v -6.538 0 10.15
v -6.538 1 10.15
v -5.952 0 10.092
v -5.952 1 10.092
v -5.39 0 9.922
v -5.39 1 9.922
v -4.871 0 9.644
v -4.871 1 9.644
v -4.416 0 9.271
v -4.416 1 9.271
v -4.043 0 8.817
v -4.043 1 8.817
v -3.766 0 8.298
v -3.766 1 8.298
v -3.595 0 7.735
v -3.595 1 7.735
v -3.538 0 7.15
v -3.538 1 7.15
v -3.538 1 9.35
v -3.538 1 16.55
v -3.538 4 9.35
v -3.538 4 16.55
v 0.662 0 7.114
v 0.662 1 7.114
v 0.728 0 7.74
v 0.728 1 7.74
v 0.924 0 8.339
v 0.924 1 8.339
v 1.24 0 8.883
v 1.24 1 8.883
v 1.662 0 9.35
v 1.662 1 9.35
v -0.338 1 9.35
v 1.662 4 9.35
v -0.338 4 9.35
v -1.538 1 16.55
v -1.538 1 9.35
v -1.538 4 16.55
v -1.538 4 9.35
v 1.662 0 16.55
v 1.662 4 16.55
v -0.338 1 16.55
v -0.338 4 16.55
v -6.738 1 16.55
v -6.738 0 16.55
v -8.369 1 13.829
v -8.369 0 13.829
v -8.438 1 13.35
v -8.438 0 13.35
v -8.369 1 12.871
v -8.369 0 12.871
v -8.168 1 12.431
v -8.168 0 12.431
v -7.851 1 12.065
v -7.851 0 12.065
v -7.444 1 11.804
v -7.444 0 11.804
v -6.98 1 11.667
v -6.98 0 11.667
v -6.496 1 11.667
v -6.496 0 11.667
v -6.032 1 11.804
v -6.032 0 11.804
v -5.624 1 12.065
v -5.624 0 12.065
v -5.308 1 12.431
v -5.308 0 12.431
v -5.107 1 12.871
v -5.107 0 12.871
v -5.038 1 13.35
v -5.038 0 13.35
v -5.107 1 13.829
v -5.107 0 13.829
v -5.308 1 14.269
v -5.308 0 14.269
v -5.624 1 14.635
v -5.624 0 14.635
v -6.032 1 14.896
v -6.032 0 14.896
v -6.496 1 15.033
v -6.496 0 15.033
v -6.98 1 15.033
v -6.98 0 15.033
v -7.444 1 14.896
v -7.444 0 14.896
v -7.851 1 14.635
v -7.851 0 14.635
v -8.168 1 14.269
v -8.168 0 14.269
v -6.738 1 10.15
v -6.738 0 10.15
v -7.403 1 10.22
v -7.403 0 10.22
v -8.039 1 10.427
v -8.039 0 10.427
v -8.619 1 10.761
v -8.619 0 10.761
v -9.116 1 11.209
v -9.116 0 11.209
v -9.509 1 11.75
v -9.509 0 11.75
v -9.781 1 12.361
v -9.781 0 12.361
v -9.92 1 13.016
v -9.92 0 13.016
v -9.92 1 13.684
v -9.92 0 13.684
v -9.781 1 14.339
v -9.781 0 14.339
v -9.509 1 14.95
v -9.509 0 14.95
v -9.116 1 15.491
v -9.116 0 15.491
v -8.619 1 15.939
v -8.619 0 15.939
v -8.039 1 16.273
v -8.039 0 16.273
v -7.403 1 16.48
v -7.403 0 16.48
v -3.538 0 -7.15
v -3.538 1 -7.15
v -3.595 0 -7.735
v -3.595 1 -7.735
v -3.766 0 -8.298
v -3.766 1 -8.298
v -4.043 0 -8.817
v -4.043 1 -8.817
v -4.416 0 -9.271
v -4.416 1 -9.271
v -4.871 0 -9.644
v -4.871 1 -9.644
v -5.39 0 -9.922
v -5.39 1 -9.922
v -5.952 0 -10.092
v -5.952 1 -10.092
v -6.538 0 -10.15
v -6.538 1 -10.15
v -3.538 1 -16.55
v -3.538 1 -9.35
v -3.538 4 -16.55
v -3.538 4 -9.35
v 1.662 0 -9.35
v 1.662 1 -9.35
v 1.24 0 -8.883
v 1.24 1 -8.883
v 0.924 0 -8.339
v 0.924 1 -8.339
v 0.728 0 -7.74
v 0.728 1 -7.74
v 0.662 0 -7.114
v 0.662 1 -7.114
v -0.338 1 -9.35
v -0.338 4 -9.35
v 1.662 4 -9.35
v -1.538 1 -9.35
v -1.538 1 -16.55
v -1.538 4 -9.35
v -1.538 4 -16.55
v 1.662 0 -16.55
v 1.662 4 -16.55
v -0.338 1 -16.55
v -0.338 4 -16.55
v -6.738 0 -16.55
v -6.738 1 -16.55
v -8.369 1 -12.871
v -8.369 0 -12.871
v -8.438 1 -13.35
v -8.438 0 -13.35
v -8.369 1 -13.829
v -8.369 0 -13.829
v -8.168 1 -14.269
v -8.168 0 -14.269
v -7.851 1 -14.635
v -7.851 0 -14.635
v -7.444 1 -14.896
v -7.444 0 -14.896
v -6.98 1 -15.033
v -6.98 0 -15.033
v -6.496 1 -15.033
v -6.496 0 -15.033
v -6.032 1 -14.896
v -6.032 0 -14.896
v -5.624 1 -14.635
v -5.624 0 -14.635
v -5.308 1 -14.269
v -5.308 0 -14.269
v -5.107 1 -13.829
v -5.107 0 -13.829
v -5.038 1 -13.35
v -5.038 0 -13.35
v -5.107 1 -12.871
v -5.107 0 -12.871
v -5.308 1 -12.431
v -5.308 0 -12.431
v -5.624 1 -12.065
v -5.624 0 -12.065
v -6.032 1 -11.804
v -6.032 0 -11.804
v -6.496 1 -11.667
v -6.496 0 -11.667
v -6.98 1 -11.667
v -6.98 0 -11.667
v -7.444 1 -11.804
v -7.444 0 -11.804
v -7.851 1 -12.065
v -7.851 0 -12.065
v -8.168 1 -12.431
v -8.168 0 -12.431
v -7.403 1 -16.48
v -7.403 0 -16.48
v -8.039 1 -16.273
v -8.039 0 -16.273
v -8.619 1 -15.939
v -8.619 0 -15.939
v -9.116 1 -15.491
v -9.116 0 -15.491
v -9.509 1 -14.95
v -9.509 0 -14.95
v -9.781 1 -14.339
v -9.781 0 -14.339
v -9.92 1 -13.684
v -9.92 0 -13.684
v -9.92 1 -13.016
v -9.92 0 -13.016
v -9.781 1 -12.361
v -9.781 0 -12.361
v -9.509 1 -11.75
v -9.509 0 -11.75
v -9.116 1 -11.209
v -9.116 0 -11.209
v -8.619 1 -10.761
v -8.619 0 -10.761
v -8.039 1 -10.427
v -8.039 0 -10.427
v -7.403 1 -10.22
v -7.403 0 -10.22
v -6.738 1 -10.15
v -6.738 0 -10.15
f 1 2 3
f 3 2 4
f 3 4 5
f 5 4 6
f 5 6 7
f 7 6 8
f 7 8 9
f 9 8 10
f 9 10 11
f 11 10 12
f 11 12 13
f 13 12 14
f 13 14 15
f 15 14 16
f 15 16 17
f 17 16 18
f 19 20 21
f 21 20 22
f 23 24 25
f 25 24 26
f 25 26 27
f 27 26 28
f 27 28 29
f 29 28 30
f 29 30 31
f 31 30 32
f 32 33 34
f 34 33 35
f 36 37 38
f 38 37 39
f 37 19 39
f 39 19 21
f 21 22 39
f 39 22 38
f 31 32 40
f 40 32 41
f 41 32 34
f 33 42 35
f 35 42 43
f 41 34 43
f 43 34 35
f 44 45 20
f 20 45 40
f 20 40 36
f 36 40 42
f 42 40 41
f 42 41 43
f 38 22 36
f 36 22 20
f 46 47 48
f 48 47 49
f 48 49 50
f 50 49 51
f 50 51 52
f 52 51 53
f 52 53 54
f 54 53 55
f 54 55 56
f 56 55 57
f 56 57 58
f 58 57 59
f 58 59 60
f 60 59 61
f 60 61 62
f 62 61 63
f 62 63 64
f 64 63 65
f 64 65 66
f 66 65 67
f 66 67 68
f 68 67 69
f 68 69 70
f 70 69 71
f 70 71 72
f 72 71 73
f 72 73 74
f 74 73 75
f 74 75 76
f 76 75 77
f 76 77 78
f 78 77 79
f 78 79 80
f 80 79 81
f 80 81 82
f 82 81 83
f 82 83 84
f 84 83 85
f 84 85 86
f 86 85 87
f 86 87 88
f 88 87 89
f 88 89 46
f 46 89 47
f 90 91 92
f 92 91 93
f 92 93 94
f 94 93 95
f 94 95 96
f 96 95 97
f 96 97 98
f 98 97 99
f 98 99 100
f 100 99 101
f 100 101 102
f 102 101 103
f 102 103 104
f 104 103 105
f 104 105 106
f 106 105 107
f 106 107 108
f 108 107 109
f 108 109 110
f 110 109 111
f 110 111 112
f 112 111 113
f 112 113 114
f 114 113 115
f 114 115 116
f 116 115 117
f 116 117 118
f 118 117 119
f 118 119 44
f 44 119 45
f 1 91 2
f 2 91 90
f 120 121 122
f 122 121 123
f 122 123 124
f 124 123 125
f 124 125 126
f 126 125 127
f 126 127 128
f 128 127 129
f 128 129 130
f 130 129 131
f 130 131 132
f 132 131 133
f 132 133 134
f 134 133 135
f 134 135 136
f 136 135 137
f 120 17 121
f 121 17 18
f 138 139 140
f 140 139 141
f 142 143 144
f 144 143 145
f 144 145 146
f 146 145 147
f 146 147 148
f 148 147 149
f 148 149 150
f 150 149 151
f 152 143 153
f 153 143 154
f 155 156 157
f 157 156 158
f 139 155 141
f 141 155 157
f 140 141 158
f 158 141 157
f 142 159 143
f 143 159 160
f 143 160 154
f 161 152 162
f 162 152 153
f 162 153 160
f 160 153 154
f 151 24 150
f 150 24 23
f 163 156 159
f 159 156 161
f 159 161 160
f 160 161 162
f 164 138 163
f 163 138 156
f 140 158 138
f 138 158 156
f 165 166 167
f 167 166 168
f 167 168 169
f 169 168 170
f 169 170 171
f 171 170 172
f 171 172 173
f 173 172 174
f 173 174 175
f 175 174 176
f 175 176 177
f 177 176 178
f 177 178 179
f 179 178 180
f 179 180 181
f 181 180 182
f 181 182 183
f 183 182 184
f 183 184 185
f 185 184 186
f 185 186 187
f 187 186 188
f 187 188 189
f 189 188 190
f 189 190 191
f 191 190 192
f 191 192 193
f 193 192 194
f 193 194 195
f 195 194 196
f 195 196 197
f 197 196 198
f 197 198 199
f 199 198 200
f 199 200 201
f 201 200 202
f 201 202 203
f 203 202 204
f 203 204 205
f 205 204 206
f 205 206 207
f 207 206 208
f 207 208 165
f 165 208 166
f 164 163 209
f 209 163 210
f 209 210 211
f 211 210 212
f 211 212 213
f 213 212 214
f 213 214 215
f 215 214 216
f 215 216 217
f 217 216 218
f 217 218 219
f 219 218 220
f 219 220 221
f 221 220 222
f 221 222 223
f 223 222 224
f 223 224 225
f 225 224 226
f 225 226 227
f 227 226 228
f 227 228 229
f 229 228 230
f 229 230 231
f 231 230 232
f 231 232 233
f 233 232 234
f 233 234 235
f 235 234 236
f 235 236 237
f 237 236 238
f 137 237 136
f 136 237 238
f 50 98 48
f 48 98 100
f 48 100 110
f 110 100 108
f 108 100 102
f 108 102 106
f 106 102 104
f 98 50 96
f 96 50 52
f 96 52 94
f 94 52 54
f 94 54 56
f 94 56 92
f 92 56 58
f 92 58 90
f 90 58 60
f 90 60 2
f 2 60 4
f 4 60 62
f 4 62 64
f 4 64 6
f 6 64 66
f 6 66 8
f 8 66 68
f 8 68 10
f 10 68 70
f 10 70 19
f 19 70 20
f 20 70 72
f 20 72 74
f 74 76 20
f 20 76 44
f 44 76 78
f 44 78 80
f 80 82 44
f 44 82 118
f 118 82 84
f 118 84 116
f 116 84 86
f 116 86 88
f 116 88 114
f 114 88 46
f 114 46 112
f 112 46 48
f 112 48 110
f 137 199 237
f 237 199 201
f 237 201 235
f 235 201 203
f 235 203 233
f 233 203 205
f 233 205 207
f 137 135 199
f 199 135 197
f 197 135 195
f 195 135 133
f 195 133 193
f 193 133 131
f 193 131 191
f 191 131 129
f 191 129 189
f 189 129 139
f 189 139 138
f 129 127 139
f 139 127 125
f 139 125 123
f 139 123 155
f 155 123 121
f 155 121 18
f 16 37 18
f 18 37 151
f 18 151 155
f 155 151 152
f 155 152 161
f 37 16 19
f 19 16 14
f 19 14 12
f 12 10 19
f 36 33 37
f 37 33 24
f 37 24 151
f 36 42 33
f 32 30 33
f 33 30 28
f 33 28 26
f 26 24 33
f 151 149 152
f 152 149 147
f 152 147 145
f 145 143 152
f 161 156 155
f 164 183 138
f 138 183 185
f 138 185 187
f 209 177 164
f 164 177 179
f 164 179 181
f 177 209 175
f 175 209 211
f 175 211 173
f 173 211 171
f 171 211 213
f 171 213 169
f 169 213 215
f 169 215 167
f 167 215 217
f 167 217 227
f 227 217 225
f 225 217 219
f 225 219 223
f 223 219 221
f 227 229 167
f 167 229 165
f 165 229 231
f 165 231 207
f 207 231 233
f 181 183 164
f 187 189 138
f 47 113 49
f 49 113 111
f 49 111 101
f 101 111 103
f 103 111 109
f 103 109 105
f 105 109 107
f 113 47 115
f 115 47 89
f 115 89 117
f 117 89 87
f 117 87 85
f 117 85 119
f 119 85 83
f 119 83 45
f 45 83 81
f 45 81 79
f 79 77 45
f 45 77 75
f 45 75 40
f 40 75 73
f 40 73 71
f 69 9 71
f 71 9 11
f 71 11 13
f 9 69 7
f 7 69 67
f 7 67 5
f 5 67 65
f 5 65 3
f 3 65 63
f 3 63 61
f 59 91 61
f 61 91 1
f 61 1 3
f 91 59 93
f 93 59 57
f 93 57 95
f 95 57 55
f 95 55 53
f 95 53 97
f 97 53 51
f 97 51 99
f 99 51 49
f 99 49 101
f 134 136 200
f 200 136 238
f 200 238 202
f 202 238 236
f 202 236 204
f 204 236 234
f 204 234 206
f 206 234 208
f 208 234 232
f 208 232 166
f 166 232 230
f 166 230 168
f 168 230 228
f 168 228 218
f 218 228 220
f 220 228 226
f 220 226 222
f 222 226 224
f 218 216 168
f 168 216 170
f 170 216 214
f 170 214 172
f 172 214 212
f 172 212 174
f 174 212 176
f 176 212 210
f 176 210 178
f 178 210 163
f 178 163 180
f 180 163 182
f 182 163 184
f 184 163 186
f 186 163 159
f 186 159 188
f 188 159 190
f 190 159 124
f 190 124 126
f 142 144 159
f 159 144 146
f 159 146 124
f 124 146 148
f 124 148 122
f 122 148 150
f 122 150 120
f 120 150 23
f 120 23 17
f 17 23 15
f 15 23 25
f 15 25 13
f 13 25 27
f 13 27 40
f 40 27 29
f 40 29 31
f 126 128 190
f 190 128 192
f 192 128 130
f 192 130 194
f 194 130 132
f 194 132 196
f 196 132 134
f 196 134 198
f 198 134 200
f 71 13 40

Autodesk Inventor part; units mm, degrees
ref_plane "YZ Plane" through (0, 0, 0) normal (1, 0, 0) x (0, 1, 0)
ref_plane "XZ Plane" through (0, 0, 0) normal (0, 1, 0) x (-1, 0, 0)
ref_plane "XY Plane" through (0, 0, 0) normal (0, 0, 1) x (1, 0, 0)
sketch "Náčrt1" plane through (0, 0, 0) normal (0, 1, 0) x (-1, 0, 0)
  line L0 (0, 0) -> (7.0755, 0)
  line L1 (6.7377, 13.35) -> (6.7377, -13.35)
  line L2 (4.2782, 13.5) -> (4.2782, -13.5)
  line L3 (3.5377, 9.35) -> (3.5377, -9.35)
  circle A0 centre (6.7377, -13.35) radius 1.7
  line L4 (3.5377, -9.35) -> (1.5377, -9.35)
  line L5 (1.5377, -9.35) -> (1.5377, -16.55)
  line L6 (1.5377, -16.55) -> (3.5377, -16.55)
  line L7 (3.5377, -16.55) -> (3.5377, -9.35)
  arc A1 (6.7377, -16.55) -> (6.7377, -10.15) centre (6.7377, -13.35) ccw
  line L8 (6.7377, -10.15) -> (3.5377, -10.15)
  line L9 (6.7377, -16.55) -> (1.5377, -16.55)
  line L10 (0.3377, -9.35) -> (-1.6623, -9.35)
  line L11 (-1.6623, -9.35) -> (-1.6623, -16.55)
  line L12 (-1.6623, -16.55) -> (0.3377, -16.55)
  line L13 (0.3377, -16.55) -> (0.3377, -9.35)
  line L14 (-1.6623, -16.55) -> (-1.6623, -16.55)
  line L15 (-1.6623, -16.55) -> (1.5377, -16.55)
  line L16 (1.5377, -9.35) -> (0.3377, -9.35)
  line L17 (-0.6623, -10.15) -> (3.5377, -10.15)
  line L18 (3.5377, -10.15) -> (3.5377, 0)
  line L19 (3.5377, 0) -> (-0.6623, 0)
  line L20 (-0.6623, 0) -> (-0.6623, -10.15)
  point P0 (2.5377, 0)
  point P1 (3.5377, -10.15)
  point P2 (2.5377, -9.35)
  point P3 (1.5377, -10.15)
  point P4 (3.5377, -9.35)
  point P5 (-0.6623, -9.35)
  point P6 (3.5377, 0)
  point P7 (3.5377, 0)
  dimension "d0" = 26.7
  dimension "d1" = 27
  dimension "d2" = 18.7
  dimension "d4" = 3.4
  dimension "d5" = 2
  dimension "d7" = 1.5
  dimension "d9" = 2
  dimension "d11" = 1.2
  dimension "d19" = 1
extrude "Vysunutí1" add sketch "Náčrt1" along normal blind 1 contours L0 L3 L4 L16 L10 L20 L19 | L7 L17 L5 L4 | L10 L13 L17 L20 | L8 A1 L9 L7 | L5 L17 L13 L16 | L5 L15 L13 L17
extrude "Vysunutí2" add sketch "Náčrt1" along normal blind 4 contours L7 L17 L5 L4 | L20 L17 L13 L12 L11 L10 | L10 L13 L17 L20 | L7 L6 L5 L17
fillet "Zaoblení1" radius 3 1 edges at (0.6623, 0.5, -9.35)
fillet "Zaoblení4" radius 3 1 edges at (-3.5377, 0.5, -10.15)
mirror "Zrcadlit2" about plane through (-3.5377, 0, 0) normal (0, 0, 1) of "Vysunutí1", "Vysunutí2", "Zaoblení1", "Zaoblení4"
properties part number "esp holder"
